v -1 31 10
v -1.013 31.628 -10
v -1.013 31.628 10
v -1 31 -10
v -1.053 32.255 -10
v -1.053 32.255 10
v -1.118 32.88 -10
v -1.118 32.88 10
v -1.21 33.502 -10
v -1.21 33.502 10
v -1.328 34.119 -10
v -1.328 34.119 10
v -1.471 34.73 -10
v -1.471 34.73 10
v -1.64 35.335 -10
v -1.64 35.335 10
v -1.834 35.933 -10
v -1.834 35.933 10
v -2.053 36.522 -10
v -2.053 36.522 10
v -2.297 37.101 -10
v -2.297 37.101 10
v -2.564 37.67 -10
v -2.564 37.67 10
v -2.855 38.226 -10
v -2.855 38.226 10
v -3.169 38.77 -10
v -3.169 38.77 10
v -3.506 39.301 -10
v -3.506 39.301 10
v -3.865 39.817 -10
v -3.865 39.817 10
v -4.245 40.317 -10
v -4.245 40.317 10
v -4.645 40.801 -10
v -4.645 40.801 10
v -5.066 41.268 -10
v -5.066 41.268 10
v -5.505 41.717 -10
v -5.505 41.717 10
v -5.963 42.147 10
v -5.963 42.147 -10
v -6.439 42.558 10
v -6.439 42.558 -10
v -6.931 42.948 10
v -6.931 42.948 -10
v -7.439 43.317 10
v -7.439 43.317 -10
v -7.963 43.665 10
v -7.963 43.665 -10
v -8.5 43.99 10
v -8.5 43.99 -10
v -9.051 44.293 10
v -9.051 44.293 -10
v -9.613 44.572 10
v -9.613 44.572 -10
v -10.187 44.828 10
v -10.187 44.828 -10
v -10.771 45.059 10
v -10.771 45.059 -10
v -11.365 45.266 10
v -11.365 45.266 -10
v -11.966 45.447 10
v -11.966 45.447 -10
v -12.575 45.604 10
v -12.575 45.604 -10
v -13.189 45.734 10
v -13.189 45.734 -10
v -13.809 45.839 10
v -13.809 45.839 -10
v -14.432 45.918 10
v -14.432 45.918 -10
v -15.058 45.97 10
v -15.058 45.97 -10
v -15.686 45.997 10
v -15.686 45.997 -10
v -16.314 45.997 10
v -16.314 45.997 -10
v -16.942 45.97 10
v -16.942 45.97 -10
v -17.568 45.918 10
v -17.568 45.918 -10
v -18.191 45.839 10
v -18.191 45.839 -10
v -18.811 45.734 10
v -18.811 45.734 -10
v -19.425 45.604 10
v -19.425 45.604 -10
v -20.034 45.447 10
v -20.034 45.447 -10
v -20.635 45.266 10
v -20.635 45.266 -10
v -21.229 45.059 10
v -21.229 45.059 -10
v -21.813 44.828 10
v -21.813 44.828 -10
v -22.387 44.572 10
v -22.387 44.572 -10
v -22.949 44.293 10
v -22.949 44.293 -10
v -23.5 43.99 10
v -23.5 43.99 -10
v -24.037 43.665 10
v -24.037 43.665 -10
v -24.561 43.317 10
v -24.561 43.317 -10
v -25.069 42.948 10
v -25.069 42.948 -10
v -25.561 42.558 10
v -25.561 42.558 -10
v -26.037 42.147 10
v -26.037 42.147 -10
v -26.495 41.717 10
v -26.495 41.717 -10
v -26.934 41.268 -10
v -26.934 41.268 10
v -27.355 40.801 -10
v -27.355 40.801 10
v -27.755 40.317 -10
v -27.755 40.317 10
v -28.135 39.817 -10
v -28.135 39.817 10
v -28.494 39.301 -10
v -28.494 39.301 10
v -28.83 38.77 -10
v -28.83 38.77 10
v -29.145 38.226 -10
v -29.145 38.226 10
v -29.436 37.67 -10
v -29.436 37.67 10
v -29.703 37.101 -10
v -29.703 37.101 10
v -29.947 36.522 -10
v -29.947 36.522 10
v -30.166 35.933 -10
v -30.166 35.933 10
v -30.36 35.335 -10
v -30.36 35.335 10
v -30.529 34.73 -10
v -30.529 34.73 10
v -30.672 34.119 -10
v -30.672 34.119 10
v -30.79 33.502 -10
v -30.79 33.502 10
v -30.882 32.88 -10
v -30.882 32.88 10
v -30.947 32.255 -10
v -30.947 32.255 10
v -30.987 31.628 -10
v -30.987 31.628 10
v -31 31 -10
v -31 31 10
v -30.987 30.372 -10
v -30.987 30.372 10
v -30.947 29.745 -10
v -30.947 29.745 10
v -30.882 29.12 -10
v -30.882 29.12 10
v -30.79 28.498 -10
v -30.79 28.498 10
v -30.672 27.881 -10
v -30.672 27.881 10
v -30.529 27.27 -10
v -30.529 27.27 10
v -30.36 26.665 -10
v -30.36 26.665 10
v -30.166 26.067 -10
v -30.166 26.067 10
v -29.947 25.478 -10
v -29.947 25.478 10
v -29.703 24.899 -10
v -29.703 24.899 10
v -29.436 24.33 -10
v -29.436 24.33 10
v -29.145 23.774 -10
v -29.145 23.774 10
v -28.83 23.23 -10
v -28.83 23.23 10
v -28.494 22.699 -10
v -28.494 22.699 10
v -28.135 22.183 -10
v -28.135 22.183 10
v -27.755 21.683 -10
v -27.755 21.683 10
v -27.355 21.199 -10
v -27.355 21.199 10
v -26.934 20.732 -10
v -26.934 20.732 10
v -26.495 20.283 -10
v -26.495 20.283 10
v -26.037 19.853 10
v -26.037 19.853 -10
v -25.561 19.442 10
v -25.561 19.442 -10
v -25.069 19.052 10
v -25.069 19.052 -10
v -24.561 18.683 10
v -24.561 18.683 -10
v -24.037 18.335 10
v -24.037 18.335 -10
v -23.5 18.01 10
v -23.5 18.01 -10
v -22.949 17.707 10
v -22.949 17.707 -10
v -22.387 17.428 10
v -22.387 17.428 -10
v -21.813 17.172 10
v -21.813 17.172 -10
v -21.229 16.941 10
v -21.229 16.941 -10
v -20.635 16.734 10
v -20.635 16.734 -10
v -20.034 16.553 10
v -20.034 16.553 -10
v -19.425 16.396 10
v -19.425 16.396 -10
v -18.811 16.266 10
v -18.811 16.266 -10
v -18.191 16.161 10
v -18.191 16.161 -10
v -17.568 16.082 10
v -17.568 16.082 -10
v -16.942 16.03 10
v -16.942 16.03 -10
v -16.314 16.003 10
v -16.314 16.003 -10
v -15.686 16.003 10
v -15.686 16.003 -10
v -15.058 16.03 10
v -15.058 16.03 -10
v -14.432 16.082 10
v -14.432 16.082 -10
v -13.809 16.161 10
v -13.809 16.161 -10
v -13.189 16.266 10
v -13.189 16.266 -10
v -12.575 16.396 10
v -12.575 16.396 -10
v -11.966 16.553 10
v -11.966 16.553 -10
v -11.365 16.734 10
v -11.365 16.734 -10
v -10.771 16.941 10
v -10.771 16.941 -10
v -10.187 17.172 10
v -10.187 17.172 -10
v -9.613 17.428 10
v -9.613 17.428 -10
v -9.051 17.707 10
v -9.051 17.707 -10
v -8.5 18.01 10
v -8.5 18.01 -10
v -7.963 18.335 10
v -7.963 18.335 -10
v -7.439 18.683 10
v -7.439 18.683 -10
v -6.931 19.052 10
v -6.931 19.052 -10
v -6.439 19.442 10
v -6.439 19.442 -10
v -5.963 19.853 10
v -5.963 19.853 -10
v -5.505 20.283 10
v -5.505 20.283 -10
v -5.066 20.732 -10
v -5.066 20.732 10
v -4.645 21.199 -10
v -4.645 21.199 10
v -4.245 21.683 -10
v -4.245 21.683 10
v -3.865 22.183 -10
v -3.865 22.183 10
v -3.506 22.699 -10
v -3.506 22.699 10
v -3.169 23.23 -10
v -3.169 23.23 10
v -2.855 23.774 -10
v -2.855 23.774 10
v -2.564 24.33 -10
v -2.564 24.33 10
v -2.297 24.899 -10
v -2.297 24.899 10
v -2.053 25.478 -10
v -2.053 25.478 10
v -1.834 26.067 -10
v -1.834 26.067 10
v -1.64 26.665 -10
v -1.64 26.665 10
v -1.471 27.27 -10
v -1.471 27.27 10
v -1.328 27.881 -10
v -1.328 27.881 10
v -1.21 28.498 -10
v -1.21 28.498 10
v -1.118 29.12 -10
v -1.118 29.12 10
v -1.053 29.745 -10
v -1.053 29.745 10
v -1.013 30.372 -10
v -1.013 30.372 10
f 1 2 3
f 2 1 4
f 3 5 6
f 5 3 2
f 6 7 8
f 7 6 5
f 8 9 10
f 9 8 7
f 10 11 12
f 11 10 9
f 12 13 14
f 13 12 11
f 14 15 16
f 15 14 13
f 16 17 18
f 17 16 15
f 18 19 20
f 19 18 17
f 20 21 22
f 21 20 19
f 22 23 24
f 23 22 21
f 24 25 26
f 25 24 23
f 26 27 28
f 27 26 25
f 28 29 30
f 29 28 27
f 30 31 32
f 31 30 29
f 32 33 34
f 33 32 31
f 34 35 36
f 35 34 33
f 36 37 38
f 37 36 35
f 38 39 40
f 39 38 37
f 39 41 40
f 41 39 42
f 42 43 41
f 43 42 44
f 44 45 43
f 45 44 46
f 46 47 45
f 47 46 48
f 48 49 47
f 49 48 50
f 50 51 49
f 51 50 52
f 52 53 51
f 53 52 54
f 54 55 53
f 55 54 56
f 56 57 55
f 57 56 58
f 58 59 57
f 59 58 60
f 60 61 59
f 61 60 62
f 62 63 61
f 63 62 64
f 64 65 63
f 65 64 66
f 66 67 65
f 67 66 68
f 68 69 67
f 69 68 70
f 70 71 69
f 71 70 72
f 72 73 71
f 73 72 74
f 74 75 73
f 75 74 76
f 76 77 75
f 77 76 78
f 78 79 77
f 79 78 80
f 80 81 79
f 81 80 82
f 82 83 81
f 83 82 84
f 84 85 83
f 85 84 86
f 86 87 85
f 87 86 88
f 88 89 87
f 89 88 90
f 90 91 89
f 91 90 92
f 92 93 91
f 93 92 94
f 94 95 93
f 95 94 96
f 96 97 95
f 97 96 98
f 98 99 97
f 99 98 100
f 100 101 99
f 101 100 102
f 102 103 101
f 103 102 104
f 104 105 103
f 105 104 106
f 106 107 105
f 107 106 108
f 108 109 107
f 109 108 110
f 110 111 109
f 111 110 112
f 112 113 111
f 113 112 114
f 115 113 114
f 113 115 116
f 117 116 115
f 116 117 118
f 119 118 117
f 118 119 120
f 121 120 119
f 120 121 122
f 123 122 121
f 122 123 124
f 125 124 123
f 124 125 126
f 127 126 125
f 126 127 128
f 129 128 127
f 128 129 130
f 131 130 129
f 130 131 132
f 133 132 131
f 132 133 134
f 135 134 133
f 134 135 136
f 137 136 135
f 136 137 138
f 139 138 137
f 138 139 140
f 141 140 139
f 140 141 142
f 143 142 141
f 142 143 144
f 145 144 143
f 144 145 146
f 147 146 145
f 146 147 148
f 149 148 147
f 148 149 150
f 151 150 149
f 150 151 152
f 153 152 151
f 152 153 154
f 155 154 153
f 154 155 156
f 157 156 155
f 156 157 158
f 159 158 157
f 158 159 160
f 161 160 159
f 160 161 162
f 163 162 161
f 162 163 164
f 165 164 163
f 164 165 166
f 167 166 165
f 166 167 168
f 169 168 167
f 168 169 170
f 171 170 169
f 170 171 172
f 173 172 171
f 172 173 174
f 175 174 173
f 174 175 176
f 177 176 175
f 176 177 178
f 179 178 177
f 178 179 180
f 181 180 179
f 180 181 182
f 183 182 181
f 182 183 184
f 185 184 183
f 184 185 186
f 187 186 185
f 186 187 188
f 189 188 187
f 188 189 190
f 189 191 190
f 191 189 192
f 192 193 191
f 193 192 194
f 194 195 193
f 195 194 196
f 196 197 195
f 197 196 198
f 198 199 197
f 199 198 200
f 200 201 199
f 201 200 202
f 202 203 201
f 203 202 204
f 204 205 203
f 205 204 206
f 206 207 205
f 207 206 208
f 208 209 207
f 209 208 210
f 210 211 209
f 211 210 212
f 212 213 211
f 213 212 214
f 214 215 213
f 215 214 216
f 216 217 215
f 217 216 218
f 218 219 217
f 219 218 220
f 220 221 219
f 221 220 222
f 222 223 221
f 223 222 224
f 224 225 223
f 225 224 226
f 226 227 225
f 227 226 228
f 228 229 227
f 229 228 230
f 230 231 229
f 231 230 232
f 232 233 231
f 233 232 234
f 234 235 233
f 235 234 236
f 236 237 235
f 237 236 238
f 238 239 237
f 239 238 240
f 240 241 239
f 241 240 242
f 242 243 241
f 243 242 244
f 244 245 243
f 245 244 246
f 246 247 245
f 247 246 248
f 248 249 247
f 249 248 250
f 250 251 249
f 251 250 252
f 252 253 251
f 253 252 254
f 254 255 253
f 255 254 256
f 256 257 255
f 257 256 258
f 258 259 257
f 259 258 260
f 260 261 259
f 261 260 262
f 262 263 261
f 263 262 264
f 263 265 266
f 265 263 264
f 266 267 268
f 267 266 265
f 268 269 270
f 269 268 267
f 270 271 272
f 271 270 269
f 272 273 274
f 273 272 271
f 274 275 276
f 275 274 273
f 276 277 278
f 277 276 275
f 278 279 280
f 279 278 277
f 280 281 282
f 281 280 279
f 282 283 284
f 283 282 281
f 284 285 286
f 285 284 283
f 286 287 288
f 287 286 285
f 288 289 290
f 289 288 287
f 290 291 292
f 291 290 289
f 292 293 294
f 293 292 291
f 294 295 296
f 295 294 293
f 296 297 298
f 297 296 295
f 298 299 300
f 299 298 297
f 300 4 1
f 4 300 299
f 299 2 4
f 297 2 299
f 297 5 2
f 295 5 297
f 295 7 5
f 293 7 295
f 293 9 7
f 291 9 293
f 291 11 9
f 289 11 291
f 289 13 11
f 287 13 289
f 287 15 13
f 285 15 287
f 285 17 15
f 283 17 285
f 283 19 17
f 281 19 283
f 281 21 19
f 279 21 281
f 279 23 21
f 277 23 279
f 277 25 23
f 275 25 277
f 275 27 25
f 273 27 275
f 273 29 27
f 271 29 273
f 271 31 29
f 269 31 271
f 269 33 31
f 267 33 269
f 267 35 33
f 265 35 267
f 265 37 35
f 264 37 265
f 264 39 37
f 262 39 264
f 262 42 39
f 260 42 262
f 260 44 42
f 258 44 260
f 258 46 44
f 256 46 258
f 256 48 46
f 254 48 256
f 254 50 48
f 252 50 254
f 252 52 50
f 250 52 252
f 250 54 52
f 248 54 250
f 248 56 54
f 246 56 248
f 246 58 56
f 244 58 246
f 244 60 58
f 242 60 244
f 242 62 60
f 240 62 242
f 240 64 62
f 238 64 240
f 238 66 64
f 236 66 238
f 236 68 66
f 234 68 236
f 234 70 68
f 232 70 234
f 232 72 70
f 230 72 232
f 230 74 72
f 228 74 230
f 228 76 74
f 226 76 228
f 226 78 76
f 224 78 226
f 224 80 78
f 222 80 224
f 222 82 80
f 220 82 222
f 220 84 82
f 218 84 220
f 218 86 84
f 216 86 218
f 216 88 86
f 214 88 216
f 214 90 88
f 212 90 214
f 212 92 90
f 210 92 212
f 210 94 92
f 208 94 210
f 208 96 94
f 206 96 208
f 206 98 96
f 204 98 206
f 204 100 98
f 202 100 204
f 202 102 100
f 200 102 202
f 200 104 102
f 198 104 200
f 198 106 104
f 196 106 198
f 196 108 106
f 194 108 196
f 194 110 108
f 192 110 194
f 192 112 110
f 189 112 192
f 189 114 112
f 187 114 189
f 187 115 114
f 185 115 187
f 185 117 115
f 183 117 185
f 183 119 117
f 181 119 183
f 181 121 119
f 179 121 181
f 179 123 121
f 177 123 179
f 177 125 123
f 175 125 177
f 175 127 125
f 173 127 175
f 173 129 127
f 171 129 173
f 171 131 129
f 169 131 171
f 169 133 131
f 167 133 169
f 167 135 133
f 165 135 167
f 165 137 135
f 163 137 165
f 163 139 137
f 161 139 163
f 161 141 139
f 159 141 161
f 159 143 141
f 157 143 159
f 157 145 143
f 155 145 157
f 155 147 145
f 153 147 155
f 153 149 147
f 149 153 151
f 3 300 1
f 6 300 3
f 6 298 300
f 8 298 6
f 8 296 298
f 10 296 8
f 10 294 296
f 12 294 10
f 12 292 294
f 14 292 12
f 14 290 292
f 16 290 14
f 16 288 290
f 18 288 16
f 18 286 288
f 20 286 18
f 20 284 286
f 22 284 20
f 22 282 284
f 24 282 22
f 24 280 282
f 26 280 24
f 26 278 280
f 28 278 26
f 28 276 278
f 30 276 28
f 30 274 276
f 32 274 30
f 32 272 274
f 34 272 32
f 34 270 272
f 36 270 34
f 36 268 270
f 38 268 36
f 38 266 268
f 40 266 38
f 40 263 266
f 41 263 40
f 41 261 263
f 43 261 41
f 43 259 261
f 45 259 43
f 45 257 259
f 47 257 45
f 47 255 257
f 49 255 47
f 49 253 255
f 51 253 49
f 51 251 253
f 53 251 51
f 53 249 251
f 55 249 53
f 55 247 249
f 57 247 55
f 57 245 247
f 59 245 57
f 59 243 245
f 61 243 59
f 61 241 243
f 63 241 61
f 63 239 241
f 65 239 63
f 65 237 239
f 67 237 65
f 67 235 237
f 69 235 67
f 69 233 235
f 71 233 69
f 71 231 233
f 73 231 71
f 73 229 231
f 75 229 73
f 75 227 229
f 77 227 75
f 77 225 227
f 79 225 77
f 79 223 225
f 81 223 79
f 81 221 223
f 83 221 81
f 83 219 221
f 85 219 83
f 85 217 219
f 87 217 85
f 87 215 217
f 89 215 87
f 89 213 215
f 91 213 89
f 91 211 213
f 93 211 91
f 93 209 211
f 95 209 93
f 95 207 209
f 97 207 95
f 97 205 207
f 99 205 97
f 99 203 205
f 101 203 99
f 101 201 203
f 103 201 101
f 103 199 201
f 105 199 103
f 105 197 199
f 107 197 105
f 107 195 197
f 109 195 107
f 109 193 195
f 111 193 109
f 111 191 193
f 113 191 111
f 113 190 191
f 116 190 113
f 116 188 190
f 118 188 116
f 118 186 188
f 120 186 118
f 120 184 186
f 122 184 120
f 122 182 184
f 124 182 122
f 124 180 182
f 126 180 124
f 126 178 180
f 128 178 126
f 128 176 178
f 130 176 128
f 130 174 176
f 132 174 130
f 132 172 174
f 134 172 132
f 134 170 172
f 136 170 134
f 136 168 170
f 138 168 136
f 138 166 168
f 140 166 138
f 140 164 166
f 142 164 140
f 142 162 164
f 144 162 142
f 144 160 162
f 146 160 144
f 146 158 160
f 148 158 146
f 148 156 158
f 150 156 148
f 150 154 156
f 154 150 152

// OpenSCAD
$fn = 150;

translate([-16, 31, 0])
rotate([0, 0, 0])
cylinder(20, 15, 15, true);
